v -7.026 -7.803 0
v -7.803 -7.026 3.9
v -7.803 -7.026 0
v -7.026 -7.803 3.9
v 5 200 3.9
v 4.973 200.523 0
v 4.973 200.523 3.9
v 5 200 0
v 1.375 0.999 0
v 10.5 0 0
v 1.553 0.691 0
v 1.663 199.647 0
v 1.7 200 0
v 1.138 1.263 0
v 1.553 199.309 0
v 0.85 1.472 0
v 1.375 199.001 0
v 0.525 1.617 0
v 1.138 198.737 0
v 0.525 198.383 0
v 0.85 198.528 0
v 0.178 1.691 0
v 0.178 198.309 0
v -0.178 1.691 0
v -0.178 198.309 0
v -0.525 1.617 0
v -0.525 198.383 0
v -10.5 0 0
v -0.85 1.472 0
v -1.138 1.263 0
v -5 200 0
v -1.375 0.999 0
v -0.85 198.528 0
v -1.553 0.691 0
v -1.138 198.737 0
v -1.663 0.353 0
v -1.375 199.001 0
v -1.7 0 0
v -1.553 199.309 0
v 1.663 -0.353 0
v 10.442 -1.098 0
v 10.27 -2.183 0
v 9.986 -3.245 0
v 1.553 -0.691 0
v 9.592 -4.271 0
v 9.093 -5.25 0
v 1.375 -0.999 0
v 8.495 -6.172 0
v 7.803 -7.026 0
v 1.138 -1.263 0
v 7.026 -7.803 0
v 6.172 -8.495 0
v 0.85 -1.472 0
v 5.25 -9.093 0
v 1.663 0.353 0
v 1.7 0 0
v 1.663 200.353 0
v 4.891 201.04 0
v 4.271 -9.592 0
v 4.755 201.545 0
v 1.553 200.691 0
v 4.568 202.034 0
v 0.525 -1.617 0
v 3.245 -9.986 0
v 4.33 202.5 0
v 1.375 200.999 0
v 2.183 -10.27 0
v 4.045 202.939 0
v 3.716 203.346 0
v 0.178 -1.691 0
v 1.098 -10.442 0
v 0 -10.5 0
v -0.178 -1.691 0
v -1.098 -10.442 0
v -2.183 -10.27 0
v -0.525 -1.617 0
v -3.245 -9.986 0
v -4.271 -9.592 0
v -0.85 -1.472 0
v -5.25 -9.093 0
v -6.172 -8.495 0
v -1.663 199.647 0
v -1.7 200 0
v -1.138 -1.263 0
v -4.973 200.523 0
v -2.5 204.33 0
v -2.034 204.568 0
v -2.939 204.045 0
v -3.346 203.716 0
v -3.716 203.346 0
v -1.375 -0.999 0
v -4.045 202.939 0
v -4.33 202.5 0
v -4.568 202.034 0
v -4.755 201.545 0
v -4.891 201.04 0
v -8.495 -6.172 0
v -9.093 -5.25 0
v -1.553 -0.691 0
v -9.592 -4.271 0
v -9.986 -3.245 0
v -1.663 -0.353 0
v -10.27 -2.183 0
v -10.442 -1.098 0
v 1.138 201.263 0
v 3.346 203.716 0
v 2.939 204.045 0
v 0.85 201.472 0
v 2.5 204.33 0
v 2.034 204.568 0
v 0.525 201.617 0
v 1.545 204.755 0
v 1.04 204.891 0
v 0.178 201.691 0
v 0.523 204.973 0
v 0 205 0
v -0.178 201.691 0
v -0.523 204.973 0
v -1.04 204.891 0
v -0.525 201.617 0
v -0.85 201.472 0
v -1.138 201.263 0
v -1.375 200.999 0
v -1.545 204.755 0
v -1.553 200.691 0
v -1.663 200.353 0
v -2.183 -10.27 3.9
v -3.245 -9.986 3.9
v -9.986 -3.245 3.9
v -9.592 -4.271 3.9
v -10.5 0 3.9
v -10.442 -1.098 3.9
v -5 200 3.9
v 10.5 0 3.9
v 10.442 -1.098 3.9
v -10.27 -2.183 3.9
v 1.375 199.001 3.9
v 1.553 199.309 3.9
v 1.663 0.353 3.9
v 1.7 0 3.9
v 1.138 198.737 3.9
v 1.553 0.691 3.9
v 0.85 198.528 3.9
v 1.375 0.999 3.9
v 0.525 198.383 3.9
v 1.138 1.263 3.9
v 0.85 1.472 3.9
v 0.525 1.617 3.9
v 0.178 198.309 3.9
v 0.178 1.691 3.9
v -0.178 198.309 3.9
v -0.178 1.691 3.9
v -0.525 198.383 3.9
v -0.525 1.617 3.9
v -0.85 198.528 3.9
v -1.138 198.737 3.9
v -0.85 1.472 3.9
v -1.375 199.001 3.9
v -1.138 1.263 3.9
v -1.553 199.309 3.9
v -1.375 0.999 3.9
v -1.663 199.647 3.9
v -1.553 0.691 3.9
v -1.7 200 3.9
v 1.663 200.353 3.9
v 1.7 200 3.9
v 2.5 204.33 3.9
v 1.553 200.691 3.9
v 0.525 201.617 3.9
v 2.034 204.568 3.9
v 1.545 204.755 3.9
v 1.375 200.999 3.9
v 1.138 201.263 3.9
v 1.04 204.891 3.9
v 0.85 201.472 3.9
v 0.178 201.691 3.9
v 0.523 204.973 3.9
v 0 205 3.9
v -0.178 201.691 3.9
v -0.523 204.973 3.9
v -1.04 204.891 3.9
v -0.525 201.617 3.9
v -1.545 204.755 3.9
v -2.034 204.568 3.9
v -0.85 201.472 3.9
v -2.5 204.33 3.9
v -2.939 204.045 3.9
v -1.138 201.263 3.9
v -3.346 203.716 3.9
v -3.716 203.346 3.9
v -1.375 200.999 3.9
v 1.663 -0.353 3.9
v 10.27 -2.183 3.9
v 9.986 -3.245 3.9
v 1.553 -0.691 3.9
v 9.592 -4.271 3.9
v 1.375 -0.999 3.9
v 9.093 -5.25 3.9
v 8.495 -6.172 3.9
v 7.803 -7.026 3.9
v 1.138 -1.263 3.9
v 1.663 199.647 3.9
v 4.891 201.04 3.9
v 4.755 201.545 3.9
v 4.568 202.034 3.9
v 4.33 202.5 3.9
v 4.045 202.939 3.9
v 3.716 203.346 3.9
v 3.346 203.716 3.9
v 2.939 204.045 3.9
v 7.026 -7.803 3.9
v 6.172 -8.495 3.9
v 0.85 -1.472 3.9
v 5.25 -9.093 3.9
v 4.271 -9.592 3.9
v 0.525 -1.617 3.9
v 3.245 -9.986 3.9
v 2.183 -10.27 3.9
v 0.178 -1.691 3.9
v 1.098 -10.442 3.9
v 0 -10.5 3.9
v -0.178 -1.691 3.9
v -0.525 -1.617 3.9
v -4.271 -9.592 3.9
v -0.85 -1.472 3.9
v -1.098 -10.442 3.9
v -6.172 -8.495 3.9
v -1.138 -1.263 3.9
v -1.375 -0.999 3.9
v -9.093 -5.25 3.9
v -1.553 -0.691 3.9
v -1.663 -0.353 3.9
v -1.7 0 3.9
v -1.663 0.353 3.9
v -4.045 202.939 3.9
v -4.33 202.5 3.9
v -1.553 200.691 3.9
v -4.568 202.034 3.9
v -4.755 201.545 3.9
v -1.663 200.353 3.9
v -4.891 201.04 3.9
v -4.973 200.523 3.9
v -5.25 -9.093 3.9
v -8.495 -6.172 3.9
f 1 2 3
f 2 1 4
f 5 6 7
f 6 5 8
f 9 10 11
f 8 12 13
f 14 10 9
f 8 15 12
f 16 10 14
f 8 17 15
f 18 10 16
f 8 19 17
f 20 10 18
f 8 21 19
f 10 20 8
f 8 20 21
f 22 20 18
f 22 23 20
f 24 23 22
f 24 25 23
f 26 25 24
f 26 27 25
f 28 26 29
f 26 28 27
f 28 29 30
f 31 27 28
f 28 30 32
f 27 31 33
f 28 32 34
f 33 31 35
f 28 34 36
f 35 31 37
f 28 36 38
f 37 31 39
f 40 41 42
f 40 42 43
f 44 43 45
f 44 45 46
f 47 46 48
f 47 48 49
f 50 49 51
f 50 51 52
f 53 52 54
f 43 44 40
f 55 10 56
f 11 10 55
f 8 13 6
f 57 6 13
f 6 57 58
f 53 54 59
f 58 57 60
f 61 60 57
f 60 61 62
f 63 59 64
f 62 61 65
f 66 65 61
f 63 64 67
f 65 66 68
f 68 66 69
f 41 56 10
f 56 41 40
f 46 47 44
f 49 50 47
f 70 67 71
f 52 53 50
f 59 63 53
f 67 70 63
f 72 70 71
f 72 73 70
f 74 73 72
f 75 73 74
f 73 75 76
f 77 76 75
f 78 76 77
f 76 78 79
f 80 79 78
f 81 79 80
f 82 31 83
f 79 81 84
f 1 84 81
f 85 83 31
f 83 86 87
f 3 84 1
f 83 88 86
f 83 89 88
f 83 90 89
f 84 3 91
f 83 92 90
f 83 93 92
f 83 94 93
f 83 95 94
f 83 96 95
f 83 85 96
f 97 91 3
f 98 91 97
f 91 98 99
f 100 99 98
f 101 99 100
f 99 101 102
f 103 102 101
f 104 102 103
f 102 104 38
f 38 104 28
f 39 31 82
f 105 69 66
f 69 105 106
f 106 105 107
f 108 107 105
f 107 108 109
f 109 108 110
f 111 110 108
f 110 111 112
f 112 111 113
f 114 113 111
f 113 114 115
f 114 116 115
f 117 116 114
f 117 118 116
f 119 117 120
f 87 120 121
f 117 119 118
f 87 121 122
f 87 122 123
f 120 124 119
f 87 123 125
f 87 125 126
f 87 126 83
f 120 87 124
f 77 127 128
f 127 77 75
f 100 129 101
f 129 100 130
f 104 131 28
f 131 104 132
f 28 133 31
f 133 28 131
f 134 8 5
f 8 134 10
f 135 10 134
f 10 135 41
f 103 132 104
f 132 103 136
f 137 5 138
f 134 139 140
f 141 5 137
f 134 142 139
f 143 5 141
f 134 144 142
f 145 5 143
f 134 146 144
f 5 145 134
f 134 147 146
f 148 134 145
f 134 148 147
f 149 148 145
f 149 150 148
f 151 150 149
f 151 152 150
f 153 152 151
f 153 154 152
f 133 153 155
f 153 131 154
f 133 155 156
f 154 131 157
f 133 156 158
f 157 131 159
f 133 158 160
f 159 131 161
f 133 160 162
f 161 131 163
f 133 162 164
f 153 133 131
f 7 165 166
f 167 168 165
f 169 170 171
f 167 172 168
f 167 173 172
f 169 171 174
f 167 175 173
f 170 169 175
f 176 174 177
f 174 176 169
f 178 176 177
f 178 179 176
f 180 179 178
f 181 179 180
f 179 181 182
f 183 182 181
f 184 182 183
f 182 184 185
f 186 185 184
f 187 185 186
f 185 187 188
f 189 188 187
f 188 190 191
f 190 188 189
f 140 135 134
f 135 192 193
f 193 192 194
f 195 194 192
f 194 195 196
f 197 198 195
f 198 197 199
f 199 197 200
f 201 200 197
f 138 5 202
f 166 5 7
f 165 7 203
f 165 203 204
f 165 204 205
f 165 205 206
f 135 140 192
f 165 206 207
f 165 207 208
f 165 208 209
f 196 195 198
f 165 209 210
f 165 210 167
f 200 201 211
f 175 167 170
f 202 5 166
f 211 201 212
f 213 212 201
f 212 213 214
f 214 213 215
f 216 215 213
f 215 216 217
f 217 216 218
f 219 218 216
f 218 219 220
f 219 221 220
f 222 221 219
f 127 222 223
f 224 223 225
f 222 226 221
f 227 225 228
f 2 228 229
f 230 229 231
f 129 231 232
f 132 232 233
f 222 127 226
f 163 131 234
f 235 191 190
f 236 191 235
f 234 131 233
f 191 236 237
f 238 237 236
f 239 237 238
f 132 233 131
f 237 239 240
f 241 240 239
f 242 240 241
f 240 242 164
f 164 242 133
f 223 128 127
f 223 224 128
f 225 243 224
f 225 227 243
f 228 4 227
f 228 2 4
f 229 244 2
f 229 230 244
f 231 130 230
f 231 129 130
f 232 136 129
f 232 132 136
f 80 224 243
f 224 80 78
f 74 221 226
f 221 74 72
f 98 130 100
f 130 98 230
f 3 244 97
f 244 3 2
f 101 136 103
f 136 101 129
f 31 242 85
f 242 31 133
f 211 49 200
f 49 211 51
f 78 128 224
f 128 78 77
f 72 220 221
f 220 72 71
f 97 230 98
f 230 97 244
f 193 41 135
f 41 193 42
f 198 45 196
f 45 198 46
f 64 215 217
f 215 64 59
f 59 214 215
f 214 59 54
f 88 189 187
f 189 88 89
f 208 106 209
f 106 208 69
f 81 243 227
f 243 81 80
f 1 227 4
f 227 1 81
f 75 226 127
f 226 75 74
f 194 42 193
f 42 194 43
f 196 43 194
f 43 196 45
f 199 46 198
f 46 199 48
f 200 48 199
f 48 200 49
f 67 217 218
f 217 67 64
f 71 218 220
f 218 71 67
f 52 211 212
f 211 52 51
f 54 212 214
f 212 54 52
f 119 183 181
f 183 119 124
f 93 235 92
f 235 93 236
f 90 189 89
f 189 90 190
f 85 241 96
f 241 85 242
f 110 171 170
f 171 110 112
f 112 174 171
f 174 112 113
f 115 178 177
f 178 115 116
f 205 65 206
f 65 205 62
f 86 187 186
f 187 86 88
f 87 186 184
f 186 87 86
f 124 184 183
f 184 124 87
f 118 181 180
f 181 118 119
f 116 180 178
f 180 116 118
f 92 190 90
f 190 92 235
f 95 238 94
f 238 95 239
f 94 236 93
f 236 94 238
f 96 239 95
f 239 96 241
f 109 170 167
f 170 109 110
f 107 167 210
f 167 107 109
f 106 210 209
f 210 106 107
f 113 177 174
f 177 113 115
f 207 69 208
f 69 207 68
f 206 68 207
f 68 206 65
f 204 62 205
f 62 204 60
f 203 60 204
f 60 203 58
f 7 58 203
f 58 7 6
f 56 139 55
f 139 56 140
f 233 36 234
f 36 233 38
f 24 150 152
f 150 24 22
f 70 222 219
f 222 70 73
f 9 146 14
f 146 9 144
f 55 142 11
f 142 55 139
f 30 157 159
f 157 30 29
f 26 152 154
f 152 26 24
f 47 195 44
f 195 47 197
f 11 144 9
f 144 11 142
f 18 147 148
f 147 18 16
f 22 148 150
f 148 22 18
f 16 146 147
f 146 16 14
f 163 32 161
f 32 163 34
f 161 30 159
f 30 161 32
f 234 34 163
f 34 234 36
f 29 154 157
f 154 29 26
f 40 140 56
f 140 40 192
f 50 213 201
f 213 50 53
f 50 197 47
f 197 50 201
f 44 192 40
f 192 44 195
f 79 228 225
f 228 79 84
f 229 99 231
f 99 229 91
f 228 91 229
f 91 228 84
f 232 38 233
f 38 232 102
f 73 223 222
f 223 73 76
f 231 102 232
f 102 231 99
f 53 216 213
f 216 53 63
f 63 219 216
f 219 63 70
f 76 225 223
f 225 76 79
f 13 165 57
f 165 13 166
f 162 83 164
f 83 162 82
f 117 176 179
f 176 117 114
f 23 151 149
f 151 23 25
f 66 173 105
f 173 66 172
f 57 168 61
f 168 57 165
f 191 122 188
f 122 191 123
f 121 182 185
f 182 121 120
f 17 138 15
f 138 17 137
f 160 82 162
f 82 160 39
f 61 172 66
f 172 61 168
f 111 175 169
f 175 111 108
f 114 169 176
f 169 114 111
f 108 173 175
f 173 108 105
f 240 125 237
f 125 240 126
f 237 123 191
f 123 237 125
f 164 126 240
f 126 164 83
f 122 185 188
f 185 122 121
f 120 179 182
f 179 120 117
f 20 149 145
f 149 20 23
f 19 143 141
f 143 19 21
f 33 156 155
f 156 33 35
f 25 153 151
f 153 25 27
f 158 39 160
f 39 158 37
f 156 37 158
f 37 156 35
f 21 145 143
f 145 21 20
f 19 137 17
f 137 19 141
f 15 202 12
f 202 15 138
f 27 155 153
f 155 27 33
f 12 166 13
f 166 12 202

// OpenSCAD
//general
$fn = 30;                  //convexity of general curved faces
thickness = 3.9;             //thickness of arm

//circular servo horn measurements
horn_diameter = 21;             //diameter of the circular horn

//arm specific stuff
arm_length =  200;//155               //horn center to horn center distance for arm length
lever_length = 39.4;             //length of lever bit on end of arm

pivot_diameter = 10;            //diameter of pivoting end
free_turning3mm = 3.4;          //diameter of hole for free turning motion

difference(){
   hull(){
      cylinder(d=horn_diameter,h=thickness, $fn = 60);
      translate([0,arm_length,0])
      cylinder(d=pivot_diameter, h=thickness, $fn = 60);
   }
   cylinder(d=free_turning3mm,h=thickness);
   translate([0,arm_length,0])
   cylinder(d=free_turning3mm,h=thickness);
}
